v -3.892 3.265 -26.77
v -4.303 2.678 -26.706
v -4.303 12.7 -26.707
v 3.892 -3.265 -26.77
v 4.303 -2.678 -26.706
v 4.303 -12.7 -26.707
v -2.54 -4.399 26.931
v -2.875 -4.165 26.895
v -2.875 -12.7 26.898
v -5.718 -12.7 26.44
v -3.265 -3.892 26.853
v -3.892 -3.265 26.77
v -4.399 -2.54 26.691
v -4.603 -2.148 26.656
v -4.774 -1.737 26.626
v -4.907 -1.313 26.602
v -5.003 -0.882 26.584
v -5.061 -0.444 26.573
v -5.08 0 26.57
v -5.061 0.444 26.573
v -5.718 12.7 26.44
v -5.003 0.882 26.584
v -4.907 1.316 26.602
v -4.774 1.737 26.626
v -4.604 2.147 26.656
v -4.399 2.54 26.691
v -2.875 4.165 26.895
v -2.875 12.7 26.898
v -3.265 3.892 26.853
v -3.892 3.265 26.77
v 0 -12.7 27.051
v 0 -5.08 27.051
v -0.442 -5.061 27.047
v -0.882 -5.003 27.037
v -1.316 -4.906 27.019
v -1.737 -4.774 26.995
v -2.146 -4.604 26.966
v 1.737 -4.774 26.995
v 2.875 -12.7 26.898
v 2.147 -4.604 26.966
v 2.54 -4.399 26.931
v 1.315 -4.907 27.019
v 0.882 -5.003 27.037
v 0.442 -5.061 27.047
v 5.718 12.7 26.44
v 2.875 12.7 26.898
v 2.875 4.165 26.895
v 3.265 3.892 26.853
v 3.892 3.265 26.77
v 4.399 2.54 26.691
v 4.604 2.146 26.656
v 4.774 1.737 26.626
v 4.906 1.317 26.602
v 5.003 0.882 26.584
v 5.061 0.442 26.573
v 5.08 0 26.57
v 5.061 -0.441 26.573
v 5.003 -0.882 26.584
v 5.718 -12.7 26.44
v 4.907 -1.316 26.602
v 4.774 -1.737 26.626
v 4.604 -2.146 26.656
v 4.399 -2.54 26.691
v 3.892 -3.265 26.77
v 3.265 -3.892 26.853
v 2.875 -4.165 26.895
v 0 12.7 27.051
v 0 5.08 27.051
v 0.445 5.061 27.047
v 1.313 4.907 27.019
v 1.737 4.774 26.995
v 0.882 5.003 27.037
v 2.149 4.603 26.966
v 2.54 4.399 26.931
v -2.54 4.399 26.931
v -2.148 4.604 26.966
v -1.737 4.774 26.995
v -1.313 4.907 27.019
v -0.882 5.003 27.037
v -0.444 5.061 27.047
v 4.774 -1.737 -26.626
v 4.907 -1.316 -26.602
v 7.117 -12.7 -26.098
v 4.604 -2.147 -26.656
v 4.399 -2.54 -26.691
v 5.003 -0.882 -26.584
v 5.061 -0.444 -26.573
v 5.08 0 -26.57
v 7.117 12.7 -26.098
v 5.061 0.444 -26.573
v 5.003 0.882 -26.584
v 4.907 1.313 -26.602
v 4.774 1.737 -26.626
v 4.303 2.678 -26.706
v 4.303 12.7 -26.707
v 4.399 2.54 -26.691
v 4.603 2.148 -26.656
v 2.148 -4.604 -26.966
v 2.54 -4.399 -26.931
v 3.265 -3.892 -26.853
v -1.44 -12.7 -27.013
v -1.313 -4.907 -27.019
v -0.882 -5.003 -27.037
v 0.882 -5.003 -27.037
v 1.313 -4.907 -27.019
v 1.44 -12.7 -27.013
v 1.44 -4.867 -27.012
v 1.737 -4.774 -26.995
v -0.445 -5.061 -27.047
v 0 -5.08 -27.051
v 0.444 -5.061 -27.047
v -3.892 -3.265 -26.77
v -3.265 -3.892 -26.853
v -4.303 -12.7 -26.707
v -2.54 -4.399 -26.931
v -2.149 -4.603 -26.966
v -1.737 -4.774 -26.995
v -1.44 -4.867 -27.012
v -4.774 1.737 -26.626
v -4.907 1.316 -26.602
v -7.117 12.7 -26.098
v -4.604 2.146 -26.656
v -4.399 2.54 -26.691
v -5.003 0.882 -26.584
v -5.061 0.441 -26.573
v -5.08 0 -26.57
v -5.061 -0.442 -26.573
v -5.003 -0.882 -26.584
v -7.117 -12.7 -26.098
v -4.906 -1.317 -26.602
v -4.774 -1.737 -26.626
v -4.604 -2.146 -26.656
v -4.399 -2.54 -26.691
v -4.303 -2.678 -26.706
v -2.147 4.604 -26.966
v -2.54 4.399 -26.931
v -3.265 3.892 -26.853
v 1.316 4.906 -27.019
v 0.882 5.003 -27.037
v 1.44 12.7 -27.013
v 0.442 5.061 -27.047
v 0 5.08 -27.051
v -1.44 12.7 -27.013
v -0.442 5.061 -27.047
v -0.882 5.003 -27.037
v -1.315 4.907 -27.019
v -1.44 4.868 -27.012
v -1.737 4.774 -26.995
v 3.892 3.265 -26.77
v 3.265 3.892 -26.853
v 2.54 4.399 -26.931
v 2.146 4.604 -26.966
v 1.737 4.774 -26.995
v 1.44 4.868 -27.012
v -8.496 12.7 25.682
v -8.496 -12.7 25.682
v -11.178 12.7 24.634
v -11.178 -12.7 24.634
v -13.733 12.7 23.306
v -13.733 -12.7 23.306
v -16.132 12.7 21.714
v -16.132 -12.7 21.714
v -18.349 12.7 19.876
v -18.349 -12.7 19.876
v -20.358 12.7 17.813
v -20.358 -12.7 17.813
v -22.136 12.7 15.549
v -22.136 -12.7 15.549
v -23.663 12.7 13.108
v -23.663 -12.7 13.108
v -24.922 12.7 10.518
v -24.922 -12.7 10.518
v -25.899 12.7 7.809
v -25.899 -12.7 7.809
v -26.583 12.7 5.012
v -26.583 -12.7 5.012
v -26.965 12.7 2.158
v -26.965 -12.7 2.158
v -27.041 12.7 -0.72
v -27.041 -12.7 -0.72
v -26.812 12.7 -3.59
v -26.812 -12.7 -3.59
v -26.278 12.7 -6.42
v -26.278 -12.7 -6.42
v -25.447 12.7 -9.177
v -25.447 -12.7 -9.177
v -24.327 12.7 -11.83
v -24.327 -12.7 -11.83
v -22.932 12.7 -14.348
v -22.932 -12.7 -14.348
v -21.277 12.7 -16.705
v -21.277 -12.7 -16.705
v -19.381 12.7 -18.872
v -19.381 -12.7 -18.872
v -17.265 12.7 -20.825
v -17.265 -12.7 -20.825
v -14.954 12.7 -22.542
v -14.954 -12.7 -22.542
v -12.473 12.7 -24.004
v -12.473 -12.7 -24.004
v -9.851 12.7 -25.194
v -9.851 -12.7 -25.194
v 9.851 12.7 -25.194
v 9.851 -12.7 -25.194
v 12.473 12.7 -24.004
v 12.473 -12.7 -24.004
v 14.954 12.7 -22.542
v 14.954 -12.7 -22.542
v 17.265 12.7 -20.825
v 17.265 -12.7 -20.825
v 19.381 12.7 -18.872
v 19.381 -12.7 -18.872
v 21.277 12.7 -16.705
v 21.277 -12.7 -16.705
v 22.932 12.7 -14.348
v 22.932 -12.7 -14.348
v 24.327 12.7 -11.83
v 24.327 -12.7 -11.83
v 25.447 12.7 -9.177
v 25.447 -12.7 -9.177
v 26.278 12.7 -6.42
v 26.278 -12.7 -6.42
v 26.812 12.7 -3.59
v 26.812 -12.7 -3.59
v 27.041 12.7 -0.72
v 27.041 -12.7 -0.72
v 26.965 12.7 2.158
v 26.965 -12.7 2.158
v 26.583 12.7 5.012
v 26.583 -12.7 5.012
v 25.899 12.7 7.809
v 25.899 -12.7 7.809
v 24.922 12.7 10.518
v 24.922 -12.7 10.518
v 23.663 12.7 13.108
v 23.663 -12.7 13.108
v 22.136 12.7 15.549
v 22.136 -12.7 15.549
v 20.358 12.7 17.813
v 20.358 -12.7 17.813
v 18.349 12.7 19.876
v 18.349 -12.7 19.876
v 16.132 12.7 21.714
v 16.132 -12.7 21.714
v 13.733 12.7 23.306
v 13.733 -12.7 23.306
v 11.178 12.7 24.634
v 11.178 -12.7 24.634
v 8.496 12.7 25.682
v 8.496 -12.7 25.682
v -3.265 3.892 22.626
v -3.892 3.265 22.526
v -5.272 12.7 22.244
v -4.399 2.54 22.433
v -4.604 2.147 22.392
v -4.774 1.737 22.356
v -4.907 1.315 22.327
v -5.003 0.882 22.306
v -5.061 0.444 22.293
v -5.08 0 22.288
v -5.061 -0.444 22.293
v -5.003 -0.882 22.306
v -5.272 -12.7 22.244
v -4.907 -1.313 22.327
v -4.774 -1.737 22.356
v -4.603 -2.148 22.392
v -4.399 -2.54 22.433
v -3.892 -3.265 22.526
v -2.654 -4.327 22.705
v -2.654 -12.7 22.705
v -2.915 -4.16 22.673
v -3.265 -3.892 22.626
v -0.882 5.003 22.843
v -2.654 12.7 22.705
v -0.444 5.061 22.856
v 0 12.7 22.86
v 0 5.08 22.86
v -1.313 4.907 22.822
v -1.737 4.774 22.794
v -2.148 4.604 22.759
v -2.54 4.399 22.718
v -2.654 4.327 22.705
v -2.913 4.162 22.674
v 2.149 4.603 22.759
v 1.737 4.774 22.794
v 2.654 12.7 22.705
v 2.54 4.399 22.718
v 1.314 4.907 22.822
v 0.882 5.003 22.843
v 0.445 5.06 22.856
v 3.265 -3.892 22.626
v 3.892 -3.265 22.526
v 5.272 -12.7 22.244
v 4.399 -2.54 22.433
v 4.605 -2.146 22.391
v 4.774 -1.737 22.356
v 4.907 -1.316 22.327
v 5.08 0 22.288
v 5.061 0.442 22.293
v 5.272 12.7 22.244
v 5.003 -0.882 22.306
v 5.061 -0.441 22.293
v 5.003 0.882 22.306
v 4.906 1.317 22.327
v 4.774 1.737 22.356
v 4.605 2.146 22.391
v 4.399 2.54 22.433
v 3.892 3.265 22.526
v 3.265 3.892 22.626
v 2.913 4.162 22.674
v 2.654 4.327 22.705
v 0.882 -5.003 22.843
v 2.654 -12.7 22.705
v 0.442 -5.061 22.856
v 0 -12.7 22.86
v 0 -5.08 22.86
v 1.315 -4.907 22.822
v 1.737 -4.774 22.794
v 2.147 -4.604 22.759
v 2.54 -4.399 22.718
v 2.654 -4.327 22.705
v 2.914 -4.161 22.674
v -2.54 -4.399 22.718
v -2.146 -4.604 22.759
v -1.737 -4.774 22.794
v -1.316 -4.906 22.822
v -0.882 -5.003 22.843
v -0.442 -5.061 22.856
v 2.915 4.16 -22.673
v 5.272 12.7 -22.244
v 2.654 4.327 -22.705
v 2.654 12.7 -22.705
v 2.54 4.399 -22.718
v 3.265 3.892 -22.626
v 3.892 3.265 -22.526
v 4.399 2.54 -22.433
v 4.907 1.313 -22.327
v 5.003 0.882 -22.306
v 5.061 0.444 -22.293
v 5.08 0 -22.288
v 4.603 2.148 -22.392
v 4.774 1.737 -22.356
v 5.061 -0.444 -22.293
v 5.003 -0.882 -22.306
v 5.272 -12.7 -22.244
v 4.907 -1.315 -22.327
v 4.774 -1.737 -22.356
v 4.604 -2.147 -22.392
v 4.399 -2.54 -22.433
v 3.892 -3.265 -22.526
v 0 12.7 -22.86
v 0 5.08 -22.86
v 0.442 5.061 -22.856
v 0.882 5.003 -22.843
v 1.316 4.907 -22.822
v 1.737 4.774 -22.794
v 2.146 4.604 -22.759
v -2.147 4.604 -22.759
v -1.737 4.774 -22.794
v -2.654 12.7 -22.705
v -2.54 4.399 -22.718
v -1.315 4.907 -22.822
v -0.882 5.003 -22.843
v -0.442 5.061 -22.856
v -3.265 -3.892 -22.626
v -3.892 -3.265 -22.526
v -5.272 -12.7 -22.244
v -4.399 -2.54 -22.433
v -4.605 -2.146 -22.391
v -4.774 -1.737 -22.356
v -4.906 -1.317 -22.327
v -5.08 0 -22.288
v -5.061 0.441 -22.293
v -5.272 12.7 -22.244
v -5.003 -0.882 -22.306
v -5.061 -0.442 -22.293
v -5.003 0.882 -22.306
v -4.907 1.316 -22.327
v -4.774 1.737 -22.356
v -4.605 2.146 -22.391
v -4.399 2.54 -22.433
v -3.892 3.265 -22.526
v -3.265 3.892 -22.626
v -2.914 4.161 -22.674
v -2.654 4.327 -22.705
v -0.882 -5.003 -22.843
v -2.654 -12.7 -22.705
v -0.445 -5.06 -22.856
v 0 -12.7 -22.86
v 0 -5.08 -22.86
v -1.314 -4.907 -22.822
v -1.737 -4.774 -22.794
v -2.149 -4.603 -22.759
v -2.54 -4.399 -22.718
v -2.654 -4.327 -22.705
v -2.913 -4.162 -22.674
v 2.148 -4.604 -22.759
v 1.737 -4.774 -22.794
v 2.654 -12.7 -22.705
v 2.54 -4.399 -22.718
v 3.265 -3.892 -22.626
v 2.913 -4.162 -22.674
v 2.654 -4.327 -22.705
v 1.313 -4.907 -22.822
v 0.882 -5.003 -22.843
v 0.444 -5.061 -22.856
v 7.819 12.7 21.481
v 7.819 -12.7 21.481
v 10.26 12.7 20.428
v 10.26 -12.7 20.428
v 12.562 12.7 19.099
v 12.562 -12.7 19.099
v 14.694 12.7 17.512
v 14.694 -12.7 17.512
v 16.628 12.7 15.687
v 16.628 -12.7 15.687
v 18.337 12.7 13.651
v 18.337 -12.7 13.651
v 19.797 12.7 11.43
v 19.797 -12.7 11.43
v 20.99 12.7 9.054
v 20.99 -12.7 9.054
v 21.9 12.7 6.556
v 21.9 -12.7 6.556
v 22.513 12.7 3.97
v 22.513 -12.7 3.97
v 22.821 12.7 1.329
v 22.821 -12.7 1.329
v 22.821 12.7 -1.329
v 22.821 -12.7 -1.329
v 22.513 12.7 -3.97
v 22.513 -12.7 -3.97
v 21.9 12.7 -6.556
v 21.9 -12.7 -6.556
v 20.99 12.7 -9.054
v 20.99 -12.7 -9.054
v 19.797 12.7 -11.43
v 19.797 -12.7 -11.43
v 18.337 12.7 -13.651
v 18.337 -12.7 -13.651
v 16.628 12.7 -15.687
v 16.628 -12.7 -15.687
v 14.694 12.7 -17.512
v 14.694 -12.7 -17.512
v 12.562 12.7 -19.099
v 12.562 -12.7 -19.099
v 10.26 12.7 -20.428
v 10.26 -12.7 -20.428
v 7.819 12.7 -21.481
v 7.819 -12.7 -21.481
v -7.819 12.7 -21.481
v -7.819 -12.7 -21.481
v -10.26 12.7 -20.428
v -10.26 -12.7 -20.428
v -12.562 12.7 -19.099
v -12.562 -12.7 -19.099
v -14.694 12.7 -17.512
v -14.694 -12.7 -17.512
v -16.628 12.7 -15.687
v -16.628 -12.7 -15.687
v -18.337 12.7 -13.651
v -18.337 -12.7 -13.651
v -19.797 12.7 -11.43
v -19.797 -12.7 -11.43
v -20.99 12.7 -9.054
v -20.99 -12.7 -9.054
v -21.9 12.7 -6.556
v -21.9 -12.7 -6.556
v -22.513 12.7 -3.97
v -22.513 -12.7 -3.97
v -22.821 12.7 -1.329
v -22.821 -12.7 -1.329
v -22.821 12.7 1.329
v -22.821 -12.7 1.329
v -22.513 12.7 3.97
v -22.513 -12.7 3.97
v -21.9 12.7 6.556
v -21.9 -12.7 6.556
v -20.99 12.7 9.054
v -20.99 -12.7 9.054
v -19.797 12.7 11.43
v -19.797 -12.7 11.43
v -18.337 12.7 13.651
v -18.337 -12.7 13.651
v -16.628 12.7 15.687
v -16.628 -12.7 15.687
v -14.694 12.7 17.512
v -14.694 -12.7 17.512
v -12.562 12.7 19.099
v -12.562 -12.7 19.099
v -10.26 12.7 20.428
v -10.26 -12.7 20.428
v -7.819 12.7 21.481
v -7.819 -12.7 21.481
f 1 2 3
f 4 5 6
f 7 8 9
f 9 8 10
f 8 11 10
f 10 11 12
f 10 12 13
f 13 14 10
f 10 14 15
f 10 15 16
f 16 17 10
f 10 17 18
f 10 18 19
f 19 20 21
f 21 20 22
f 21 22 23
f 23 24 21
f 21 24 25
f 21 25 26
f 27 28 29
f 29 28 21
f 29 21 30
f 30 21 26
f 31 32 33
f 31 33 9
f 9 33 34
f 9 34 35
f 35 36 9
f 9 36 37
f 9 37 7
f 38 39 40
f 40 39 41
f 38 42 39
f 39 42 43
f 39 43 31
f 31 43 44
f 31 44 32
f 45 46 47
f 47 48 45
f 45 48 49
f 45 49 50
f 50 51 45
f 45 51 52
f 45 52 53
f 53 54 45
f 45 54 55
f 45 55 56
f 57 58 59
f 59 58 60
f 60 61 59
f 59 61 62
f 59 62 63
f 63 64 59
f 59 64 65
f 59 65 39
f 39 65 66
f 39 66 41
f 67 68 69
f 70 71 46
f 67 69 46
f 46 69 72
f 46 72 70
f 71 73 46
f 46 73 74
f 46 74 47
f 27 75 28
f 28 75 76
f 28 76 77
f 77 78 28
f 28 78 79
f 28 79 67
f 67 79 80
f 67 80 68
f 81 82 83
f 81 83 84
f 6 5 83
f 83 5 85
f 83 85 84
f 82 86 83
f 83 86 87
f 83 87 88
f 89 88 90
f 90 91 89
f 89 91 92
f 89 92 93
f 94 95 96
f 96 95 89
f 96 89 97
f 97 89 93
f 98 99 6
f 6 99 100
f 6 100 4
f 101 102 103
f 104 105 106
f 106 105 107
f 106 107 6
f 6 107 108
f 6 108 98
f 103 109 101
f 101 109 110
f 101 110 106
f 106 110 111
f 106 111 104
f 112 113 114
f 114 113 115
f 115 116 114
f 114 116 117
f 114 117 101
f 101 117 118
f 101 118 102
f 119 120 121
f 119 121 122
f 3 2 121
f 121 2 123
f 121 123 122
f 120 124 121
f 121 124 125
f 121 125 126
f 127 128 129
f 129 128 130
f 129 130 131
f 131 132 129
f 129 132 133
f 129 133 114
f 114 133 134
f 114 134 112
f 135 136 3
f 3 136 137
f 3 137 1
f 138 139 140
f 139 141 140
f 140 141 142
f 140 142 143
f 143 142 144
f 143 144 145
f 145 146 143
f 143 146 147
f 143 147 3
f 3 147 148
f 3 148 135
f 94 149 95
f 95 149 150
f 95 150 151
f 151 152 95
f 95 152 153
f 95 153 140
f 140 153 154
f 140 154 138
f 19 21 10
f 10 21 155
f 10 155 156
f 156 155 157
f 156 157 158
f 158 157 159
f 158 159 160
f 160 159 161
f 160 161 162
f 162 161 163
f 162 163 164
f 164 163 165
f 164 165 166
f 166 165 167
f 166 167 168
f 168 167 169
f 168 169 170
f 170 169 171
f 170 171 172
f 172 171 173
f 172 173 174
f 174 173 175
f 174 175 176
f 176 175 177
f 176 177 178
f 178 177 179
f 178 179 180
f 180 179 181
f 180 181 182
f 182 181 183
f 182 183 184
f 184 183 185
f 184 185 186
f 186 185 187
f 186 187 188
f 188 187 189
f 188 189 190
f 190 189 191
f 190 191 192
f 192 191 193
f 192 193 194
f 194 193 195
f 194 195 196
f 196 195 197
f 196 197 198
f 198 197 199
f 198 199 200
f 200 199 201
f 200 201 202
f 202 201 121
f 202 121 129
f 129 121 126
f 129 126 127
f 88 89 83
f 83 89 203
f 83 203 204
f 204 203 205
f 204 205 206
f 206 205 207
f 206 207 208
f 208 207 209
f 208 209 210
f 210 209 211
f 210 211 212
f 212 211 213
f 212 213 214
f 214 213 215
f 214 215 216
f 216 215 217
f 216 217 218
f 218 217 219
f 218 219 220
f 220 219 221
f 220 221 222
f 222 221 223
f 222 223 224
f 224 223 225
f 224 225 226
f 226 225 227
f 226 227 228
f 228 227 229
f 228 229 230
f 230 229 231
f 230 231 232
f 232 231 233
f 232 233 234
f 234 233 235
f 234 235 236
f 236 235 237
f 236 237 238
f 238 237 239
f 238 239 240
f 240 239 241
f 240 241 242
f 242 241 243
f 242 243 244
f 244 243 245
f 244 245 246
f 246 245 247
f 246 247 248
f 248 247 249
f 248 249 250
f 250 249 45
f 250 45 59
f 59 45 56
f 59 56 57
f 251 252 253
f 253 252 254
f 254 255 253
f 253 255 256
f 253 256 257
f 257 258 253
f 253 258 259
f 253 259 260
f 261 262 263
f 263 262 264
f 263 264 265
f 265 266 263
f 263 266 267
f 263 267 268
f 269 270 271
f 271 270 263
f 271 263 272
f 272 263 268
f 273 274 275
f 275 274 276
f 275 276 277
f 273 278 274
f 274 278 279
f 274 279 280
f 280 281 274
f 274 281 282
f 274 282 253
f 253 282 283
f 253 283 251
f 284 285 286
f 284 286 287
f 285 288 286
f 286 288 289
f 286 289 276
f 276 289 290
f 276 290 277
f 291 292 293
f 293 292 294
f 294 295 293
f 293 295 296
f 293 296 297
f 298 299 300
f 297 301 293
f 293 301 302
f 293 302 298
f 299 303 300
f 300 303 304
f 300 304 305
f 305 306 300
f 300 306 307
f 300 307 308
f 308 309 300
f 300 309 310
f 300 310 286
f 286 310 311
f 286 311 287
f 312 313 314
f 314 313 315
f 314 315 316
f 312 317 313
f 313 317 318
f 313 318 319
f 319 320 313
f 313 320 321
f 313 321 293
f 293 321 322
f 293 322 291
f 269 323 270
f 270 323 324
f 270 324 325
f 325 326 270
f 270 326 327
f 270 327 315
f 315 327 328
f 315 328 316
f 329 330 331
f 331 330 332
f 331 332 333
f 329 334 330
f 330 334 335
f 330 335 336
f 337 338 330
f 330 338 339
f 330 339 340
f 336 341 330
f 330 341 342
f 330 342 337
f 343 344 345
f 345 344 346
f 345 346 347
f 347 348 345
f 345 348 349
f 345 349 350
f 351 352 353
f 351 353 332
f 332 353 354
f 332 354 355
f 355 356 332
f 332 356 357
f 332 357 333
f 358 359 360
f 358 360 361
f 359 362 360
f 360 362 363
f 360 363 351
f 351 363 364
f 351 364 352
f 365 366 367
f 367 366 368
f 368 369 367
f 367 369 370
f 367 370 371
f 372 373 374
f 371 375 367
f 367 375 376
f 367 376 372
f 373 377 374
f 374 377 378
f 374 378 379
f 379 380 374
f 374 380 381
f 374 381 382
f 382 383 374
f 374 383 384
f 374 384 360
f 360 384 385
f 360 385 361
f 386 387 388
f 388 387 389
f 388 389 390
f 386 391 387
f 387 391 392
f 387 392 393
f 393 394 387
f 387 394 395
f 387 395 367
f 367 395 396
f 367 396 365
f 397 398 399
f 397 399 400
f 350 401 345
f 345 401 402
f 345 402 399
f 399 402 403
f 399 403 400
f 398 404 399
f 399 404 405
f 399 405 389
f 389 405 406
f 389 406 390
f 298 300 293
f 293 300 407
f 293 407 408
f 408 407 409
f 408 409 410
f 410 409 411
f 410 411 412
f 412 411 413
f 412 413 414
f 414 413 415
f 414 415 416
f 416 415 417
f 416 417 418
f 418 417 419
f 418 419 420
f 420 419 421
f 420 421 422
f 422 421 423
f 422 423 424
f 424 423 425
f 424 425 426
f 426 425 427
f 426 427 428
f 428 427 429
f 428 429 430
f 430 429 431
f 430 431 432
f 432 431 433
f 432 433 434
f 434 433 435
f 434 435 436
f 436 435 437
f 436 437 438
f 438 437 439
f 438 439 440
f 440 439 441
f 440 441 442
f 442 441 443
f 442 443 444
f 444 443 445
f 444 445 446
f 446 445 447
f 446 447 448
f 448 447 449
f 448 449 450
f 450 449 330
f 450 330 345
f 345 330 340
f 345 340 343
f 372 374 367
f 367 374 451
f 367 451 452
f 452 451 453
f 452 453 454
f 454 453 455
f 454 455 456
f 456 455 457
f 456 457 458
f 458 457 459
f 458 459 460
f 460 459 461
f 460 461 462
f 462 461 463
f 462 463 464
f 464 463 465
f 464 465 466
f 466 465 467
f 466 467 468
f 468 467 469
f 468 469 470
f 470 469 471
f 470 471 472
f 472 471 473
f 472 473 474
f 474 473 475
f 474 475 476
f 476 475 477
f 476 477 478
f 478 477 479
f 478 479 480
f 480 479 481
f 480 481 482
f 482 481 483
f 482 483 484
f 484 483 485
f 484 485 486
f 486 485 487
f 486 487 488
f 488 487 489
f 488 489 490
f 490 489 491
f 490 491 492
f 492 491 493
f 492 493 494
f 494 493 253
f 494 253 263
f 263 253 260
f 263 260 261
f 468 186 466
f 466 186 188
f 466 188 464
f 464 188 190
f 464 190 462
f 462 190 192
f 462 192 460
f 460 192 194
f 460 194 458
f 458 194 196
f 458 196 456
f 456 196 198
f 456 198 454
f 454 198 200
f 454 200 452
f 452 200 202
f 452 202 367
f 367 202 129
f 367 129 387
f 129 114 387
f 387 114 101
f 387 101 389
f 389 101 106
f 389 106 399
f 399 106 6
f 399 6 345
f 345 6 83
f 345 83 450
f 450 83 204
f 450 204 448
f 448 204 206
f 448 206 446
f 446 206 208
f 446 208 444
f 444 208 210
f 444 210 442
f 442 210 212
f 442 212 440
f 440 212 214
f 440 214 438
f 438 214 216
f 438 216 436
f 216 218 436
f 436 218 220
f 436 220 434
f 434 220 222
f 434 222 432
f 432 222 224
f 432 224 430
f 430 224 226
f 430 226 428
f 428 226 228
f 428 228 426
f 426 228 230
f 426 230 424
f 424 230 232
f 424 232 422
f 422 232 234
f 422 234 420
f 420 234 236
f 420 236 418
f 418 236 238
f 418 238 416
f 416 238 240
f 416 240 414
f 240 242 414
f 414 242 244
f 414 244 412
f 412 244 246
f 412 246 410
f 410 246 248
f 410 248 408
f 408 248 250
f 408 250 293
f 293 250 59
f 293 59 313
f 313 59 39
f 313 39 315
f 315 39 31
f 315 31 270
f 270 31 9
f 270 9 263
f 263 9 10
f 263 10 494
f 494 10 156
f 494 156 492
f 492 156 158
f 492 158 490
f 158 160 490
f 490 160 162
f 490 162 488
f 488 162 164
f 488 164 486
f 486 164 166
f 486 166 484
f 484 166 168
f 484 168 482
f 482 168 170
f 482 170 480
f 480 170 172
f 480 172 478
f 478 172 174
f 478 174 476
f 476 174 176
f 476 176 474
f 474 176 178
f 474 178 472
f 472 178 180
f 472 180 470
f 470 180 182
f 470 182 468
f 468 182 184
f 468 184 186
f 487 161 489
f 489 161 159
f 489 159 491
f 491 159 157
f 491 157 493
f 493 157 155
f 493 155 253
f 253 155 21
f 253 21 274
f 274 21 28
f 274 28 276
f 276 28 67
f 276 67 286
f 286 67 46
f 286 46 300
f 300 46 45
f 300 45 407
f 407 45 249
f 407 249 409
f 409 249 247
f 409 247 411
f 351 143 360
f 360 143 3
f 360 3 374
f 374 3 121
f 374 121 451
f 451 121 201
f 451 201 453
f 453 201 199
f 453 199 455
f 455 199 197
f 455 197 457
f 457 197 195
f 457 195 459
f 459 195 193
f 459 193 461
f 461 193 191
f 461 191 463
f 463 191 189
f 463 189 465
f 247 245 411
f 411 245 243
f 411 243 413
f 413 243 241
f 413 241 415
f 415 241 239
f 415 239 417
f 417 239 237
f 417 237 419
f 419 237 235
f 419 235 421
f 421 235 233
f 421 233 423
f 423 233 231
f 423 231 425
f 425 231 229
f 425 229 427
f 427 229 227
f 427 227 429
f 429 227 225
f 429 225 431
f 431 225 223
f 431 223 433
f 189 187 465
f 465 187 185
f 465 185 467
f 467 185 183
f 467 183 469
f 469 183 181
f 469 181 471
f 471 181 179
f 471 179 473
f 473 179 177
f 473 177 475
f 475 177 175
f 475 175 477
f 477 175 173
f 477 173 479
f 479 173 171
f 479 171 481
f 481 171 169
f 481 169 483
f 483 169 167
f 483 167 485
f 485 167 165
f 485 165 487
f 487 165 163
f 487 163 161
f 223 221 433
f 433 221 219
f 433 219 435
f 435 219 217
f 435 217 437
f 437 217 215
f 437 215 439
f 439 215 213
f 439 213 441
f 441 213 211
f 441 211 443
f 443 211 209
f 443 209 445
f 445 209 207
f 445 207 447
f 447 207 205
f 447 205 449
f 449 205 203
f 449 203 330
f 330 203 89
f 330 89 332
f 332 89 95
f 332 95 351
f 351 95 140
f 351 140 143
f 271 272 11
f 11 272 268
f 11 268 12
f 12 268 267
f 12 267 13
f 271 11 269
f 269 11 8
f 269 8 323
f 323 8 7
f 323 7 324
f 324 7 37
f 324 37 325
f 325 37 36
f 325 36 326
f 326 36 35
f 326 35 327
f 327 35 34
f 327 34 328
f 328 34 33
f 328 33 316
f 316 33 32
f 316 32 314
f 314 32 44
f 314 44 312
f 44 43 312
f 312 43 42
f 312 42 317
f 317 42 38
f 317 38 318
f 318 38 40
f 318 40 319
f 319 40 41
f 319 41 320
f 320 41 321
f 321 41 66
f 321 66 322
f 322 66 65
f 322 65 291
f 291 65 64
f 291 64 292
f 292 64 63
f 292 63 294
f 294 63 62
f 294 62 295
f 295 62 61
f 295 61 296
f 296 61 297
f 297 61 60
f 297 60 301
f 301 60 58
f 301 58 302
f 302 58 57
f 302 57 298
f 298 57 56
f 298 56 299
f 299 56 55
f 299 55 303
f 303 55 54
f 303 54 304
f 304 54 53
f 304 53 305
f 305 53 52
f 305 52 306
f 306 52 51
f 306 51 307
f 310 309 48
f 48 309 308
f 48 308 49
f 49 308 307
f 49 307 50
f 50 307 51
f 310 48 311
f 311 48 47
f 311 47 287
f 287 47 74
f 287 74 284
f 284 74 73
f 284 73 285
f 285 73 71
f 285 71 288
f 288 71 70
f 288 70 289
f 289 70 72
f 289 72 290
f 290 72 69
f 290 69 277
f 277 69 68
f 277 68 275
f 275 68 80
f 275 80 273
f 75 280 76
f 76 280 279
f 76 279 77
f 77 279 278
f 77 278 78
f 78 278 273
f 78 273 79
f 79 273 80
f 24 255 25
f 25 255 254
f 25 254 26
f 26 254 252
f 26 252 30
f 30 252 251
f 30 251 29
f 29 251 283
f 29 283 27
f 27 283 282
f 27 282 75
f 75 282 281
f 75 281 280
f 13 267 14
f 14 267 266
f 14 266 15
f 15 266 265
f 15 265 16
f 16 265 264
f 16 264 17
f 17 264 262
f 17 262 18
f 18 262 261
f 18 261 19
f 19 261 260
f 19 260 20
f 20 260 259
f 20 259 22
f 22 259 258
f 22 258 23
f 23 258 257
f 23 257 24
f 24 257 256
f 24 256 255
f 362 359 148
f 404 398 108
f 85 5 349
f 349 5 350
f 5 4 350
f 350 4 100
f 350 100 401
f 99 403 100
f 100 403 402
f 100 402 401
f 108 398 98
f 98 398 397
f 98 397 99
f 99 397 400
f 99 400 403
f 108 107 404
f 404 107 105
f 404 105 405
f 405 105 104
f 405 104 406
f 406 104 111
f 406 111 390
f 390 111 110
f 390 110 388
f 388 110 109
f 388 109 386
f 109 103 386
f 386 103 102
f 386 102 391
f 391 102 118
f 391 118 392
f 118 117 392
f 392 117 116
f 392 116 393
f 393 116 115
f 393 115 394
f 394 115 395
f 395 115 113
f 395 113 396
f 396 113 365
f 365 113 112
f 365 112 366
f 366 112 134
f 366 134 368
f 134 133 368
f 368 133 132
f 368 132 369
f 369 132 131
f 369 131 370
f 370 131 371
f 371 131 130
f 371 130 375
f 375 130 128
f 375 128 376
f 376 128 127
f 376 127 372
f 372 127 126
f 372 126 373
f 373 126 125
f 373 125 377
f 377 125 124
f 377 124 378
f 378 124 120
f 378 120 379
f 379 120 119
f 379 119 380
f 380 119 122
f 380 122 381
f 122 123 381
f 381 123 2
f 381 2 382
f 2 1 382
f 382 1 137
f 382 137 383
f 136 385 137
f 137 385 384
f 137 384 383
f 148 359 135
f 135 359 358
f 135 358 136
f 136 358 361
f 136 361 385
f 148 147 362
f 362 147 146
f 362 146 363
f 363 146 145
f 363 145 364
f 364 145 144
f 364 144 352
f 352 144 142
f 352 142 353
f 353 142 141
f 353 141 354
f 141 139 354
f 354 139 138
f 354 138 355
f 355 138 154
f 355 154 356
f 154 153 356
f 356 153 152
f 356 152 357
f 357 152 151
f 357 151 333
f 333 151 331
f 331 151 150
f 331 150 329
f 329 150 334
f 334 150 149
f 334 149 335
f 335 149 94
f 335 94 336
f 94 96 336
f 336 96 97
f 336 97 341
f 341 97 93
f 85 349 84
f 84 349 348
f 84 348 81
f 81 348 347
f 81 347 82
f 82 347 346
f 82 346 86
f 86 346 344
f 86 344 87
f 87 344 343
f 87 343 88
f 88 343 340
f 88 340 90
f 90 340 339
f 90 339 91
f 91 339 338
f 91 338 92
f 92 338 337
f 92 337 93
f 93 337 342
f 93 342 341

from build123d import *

# Parameters (mm, degrees)
BOSS_EXTRUDE1_DEPTH            = 12.7
BOSS_EXTRUDE1_DEPTH_BACK       = 12.7
SKETCH1_R                      = 27.051
SKETCH1_R_2                    = 22.86
CUT_EXTRUDE1_REACH             = 42.309
SKETCH2_R                      = 5.08
CUT_EXTRUDE1_DIRECTION_2_REACH = 42.309


with BuildPart() as part:
    # Sketch1 → Boss-Extrude1 (new, two sides: drawn at the far end of the back side and taken through both)
    with BuildSketch(Plane(origin=(0, 0, 0), x_dir=(1, 0, 0), z_dir=(0, 1, 0)).offset(-BOSS_EXTRUDE1_DEPTH_BACK)):
        Circle(SKETCH1_R)
        Circle(SKETCH1_R_2, mode=Mode.SUBTRACT)
    extrude(amount=BOSS_EXTRUDE1_DEPTH + BOSS_EXTRUDE1_DEPTH_BACK)

    # Sketch2 → Cut-Extrude1 (cut, up to next)
    with BuildSketch(Plane.XY, mode=Mode.PRIVATE) as cut_extrude1_sk1:
        Circle(SKETCH2_R)
    cut_extrude1_tool1 = extrude(cut_extrude1_sk1.sketch, amount=-CUT_EXTRUDE1_REACH, mode=Mode.PRIVATE) & part.part
    add(cut_extrude1_tool1.solids().sort_by_distance((0, 0, 0))[0], mode=Mode.SUBTRACT)

    # Sketch2 → Cut-Extrude1 direction 2 (cut, up to next)
    with BuildSketch(Plane.XY, mode=Mode.PRIVATE) as cut_extrude1_direction_2_sk1:
        Circle(SKETCH2_R)
    cut_extrude1_direction_2_tool1 = extrude(cut_extrude1_direction_2_sk1.sketch, amount=CUT_EXTRUDE1_DIRECTION_2_REACH, mode=Mode.PRIVATE) & part.part
    add(cut_extrude1_direction_2_tool1.solids().sort_by_distance((0, 0, 0))[0], mode=Mode.SUBTRACT)


solid = part.part
